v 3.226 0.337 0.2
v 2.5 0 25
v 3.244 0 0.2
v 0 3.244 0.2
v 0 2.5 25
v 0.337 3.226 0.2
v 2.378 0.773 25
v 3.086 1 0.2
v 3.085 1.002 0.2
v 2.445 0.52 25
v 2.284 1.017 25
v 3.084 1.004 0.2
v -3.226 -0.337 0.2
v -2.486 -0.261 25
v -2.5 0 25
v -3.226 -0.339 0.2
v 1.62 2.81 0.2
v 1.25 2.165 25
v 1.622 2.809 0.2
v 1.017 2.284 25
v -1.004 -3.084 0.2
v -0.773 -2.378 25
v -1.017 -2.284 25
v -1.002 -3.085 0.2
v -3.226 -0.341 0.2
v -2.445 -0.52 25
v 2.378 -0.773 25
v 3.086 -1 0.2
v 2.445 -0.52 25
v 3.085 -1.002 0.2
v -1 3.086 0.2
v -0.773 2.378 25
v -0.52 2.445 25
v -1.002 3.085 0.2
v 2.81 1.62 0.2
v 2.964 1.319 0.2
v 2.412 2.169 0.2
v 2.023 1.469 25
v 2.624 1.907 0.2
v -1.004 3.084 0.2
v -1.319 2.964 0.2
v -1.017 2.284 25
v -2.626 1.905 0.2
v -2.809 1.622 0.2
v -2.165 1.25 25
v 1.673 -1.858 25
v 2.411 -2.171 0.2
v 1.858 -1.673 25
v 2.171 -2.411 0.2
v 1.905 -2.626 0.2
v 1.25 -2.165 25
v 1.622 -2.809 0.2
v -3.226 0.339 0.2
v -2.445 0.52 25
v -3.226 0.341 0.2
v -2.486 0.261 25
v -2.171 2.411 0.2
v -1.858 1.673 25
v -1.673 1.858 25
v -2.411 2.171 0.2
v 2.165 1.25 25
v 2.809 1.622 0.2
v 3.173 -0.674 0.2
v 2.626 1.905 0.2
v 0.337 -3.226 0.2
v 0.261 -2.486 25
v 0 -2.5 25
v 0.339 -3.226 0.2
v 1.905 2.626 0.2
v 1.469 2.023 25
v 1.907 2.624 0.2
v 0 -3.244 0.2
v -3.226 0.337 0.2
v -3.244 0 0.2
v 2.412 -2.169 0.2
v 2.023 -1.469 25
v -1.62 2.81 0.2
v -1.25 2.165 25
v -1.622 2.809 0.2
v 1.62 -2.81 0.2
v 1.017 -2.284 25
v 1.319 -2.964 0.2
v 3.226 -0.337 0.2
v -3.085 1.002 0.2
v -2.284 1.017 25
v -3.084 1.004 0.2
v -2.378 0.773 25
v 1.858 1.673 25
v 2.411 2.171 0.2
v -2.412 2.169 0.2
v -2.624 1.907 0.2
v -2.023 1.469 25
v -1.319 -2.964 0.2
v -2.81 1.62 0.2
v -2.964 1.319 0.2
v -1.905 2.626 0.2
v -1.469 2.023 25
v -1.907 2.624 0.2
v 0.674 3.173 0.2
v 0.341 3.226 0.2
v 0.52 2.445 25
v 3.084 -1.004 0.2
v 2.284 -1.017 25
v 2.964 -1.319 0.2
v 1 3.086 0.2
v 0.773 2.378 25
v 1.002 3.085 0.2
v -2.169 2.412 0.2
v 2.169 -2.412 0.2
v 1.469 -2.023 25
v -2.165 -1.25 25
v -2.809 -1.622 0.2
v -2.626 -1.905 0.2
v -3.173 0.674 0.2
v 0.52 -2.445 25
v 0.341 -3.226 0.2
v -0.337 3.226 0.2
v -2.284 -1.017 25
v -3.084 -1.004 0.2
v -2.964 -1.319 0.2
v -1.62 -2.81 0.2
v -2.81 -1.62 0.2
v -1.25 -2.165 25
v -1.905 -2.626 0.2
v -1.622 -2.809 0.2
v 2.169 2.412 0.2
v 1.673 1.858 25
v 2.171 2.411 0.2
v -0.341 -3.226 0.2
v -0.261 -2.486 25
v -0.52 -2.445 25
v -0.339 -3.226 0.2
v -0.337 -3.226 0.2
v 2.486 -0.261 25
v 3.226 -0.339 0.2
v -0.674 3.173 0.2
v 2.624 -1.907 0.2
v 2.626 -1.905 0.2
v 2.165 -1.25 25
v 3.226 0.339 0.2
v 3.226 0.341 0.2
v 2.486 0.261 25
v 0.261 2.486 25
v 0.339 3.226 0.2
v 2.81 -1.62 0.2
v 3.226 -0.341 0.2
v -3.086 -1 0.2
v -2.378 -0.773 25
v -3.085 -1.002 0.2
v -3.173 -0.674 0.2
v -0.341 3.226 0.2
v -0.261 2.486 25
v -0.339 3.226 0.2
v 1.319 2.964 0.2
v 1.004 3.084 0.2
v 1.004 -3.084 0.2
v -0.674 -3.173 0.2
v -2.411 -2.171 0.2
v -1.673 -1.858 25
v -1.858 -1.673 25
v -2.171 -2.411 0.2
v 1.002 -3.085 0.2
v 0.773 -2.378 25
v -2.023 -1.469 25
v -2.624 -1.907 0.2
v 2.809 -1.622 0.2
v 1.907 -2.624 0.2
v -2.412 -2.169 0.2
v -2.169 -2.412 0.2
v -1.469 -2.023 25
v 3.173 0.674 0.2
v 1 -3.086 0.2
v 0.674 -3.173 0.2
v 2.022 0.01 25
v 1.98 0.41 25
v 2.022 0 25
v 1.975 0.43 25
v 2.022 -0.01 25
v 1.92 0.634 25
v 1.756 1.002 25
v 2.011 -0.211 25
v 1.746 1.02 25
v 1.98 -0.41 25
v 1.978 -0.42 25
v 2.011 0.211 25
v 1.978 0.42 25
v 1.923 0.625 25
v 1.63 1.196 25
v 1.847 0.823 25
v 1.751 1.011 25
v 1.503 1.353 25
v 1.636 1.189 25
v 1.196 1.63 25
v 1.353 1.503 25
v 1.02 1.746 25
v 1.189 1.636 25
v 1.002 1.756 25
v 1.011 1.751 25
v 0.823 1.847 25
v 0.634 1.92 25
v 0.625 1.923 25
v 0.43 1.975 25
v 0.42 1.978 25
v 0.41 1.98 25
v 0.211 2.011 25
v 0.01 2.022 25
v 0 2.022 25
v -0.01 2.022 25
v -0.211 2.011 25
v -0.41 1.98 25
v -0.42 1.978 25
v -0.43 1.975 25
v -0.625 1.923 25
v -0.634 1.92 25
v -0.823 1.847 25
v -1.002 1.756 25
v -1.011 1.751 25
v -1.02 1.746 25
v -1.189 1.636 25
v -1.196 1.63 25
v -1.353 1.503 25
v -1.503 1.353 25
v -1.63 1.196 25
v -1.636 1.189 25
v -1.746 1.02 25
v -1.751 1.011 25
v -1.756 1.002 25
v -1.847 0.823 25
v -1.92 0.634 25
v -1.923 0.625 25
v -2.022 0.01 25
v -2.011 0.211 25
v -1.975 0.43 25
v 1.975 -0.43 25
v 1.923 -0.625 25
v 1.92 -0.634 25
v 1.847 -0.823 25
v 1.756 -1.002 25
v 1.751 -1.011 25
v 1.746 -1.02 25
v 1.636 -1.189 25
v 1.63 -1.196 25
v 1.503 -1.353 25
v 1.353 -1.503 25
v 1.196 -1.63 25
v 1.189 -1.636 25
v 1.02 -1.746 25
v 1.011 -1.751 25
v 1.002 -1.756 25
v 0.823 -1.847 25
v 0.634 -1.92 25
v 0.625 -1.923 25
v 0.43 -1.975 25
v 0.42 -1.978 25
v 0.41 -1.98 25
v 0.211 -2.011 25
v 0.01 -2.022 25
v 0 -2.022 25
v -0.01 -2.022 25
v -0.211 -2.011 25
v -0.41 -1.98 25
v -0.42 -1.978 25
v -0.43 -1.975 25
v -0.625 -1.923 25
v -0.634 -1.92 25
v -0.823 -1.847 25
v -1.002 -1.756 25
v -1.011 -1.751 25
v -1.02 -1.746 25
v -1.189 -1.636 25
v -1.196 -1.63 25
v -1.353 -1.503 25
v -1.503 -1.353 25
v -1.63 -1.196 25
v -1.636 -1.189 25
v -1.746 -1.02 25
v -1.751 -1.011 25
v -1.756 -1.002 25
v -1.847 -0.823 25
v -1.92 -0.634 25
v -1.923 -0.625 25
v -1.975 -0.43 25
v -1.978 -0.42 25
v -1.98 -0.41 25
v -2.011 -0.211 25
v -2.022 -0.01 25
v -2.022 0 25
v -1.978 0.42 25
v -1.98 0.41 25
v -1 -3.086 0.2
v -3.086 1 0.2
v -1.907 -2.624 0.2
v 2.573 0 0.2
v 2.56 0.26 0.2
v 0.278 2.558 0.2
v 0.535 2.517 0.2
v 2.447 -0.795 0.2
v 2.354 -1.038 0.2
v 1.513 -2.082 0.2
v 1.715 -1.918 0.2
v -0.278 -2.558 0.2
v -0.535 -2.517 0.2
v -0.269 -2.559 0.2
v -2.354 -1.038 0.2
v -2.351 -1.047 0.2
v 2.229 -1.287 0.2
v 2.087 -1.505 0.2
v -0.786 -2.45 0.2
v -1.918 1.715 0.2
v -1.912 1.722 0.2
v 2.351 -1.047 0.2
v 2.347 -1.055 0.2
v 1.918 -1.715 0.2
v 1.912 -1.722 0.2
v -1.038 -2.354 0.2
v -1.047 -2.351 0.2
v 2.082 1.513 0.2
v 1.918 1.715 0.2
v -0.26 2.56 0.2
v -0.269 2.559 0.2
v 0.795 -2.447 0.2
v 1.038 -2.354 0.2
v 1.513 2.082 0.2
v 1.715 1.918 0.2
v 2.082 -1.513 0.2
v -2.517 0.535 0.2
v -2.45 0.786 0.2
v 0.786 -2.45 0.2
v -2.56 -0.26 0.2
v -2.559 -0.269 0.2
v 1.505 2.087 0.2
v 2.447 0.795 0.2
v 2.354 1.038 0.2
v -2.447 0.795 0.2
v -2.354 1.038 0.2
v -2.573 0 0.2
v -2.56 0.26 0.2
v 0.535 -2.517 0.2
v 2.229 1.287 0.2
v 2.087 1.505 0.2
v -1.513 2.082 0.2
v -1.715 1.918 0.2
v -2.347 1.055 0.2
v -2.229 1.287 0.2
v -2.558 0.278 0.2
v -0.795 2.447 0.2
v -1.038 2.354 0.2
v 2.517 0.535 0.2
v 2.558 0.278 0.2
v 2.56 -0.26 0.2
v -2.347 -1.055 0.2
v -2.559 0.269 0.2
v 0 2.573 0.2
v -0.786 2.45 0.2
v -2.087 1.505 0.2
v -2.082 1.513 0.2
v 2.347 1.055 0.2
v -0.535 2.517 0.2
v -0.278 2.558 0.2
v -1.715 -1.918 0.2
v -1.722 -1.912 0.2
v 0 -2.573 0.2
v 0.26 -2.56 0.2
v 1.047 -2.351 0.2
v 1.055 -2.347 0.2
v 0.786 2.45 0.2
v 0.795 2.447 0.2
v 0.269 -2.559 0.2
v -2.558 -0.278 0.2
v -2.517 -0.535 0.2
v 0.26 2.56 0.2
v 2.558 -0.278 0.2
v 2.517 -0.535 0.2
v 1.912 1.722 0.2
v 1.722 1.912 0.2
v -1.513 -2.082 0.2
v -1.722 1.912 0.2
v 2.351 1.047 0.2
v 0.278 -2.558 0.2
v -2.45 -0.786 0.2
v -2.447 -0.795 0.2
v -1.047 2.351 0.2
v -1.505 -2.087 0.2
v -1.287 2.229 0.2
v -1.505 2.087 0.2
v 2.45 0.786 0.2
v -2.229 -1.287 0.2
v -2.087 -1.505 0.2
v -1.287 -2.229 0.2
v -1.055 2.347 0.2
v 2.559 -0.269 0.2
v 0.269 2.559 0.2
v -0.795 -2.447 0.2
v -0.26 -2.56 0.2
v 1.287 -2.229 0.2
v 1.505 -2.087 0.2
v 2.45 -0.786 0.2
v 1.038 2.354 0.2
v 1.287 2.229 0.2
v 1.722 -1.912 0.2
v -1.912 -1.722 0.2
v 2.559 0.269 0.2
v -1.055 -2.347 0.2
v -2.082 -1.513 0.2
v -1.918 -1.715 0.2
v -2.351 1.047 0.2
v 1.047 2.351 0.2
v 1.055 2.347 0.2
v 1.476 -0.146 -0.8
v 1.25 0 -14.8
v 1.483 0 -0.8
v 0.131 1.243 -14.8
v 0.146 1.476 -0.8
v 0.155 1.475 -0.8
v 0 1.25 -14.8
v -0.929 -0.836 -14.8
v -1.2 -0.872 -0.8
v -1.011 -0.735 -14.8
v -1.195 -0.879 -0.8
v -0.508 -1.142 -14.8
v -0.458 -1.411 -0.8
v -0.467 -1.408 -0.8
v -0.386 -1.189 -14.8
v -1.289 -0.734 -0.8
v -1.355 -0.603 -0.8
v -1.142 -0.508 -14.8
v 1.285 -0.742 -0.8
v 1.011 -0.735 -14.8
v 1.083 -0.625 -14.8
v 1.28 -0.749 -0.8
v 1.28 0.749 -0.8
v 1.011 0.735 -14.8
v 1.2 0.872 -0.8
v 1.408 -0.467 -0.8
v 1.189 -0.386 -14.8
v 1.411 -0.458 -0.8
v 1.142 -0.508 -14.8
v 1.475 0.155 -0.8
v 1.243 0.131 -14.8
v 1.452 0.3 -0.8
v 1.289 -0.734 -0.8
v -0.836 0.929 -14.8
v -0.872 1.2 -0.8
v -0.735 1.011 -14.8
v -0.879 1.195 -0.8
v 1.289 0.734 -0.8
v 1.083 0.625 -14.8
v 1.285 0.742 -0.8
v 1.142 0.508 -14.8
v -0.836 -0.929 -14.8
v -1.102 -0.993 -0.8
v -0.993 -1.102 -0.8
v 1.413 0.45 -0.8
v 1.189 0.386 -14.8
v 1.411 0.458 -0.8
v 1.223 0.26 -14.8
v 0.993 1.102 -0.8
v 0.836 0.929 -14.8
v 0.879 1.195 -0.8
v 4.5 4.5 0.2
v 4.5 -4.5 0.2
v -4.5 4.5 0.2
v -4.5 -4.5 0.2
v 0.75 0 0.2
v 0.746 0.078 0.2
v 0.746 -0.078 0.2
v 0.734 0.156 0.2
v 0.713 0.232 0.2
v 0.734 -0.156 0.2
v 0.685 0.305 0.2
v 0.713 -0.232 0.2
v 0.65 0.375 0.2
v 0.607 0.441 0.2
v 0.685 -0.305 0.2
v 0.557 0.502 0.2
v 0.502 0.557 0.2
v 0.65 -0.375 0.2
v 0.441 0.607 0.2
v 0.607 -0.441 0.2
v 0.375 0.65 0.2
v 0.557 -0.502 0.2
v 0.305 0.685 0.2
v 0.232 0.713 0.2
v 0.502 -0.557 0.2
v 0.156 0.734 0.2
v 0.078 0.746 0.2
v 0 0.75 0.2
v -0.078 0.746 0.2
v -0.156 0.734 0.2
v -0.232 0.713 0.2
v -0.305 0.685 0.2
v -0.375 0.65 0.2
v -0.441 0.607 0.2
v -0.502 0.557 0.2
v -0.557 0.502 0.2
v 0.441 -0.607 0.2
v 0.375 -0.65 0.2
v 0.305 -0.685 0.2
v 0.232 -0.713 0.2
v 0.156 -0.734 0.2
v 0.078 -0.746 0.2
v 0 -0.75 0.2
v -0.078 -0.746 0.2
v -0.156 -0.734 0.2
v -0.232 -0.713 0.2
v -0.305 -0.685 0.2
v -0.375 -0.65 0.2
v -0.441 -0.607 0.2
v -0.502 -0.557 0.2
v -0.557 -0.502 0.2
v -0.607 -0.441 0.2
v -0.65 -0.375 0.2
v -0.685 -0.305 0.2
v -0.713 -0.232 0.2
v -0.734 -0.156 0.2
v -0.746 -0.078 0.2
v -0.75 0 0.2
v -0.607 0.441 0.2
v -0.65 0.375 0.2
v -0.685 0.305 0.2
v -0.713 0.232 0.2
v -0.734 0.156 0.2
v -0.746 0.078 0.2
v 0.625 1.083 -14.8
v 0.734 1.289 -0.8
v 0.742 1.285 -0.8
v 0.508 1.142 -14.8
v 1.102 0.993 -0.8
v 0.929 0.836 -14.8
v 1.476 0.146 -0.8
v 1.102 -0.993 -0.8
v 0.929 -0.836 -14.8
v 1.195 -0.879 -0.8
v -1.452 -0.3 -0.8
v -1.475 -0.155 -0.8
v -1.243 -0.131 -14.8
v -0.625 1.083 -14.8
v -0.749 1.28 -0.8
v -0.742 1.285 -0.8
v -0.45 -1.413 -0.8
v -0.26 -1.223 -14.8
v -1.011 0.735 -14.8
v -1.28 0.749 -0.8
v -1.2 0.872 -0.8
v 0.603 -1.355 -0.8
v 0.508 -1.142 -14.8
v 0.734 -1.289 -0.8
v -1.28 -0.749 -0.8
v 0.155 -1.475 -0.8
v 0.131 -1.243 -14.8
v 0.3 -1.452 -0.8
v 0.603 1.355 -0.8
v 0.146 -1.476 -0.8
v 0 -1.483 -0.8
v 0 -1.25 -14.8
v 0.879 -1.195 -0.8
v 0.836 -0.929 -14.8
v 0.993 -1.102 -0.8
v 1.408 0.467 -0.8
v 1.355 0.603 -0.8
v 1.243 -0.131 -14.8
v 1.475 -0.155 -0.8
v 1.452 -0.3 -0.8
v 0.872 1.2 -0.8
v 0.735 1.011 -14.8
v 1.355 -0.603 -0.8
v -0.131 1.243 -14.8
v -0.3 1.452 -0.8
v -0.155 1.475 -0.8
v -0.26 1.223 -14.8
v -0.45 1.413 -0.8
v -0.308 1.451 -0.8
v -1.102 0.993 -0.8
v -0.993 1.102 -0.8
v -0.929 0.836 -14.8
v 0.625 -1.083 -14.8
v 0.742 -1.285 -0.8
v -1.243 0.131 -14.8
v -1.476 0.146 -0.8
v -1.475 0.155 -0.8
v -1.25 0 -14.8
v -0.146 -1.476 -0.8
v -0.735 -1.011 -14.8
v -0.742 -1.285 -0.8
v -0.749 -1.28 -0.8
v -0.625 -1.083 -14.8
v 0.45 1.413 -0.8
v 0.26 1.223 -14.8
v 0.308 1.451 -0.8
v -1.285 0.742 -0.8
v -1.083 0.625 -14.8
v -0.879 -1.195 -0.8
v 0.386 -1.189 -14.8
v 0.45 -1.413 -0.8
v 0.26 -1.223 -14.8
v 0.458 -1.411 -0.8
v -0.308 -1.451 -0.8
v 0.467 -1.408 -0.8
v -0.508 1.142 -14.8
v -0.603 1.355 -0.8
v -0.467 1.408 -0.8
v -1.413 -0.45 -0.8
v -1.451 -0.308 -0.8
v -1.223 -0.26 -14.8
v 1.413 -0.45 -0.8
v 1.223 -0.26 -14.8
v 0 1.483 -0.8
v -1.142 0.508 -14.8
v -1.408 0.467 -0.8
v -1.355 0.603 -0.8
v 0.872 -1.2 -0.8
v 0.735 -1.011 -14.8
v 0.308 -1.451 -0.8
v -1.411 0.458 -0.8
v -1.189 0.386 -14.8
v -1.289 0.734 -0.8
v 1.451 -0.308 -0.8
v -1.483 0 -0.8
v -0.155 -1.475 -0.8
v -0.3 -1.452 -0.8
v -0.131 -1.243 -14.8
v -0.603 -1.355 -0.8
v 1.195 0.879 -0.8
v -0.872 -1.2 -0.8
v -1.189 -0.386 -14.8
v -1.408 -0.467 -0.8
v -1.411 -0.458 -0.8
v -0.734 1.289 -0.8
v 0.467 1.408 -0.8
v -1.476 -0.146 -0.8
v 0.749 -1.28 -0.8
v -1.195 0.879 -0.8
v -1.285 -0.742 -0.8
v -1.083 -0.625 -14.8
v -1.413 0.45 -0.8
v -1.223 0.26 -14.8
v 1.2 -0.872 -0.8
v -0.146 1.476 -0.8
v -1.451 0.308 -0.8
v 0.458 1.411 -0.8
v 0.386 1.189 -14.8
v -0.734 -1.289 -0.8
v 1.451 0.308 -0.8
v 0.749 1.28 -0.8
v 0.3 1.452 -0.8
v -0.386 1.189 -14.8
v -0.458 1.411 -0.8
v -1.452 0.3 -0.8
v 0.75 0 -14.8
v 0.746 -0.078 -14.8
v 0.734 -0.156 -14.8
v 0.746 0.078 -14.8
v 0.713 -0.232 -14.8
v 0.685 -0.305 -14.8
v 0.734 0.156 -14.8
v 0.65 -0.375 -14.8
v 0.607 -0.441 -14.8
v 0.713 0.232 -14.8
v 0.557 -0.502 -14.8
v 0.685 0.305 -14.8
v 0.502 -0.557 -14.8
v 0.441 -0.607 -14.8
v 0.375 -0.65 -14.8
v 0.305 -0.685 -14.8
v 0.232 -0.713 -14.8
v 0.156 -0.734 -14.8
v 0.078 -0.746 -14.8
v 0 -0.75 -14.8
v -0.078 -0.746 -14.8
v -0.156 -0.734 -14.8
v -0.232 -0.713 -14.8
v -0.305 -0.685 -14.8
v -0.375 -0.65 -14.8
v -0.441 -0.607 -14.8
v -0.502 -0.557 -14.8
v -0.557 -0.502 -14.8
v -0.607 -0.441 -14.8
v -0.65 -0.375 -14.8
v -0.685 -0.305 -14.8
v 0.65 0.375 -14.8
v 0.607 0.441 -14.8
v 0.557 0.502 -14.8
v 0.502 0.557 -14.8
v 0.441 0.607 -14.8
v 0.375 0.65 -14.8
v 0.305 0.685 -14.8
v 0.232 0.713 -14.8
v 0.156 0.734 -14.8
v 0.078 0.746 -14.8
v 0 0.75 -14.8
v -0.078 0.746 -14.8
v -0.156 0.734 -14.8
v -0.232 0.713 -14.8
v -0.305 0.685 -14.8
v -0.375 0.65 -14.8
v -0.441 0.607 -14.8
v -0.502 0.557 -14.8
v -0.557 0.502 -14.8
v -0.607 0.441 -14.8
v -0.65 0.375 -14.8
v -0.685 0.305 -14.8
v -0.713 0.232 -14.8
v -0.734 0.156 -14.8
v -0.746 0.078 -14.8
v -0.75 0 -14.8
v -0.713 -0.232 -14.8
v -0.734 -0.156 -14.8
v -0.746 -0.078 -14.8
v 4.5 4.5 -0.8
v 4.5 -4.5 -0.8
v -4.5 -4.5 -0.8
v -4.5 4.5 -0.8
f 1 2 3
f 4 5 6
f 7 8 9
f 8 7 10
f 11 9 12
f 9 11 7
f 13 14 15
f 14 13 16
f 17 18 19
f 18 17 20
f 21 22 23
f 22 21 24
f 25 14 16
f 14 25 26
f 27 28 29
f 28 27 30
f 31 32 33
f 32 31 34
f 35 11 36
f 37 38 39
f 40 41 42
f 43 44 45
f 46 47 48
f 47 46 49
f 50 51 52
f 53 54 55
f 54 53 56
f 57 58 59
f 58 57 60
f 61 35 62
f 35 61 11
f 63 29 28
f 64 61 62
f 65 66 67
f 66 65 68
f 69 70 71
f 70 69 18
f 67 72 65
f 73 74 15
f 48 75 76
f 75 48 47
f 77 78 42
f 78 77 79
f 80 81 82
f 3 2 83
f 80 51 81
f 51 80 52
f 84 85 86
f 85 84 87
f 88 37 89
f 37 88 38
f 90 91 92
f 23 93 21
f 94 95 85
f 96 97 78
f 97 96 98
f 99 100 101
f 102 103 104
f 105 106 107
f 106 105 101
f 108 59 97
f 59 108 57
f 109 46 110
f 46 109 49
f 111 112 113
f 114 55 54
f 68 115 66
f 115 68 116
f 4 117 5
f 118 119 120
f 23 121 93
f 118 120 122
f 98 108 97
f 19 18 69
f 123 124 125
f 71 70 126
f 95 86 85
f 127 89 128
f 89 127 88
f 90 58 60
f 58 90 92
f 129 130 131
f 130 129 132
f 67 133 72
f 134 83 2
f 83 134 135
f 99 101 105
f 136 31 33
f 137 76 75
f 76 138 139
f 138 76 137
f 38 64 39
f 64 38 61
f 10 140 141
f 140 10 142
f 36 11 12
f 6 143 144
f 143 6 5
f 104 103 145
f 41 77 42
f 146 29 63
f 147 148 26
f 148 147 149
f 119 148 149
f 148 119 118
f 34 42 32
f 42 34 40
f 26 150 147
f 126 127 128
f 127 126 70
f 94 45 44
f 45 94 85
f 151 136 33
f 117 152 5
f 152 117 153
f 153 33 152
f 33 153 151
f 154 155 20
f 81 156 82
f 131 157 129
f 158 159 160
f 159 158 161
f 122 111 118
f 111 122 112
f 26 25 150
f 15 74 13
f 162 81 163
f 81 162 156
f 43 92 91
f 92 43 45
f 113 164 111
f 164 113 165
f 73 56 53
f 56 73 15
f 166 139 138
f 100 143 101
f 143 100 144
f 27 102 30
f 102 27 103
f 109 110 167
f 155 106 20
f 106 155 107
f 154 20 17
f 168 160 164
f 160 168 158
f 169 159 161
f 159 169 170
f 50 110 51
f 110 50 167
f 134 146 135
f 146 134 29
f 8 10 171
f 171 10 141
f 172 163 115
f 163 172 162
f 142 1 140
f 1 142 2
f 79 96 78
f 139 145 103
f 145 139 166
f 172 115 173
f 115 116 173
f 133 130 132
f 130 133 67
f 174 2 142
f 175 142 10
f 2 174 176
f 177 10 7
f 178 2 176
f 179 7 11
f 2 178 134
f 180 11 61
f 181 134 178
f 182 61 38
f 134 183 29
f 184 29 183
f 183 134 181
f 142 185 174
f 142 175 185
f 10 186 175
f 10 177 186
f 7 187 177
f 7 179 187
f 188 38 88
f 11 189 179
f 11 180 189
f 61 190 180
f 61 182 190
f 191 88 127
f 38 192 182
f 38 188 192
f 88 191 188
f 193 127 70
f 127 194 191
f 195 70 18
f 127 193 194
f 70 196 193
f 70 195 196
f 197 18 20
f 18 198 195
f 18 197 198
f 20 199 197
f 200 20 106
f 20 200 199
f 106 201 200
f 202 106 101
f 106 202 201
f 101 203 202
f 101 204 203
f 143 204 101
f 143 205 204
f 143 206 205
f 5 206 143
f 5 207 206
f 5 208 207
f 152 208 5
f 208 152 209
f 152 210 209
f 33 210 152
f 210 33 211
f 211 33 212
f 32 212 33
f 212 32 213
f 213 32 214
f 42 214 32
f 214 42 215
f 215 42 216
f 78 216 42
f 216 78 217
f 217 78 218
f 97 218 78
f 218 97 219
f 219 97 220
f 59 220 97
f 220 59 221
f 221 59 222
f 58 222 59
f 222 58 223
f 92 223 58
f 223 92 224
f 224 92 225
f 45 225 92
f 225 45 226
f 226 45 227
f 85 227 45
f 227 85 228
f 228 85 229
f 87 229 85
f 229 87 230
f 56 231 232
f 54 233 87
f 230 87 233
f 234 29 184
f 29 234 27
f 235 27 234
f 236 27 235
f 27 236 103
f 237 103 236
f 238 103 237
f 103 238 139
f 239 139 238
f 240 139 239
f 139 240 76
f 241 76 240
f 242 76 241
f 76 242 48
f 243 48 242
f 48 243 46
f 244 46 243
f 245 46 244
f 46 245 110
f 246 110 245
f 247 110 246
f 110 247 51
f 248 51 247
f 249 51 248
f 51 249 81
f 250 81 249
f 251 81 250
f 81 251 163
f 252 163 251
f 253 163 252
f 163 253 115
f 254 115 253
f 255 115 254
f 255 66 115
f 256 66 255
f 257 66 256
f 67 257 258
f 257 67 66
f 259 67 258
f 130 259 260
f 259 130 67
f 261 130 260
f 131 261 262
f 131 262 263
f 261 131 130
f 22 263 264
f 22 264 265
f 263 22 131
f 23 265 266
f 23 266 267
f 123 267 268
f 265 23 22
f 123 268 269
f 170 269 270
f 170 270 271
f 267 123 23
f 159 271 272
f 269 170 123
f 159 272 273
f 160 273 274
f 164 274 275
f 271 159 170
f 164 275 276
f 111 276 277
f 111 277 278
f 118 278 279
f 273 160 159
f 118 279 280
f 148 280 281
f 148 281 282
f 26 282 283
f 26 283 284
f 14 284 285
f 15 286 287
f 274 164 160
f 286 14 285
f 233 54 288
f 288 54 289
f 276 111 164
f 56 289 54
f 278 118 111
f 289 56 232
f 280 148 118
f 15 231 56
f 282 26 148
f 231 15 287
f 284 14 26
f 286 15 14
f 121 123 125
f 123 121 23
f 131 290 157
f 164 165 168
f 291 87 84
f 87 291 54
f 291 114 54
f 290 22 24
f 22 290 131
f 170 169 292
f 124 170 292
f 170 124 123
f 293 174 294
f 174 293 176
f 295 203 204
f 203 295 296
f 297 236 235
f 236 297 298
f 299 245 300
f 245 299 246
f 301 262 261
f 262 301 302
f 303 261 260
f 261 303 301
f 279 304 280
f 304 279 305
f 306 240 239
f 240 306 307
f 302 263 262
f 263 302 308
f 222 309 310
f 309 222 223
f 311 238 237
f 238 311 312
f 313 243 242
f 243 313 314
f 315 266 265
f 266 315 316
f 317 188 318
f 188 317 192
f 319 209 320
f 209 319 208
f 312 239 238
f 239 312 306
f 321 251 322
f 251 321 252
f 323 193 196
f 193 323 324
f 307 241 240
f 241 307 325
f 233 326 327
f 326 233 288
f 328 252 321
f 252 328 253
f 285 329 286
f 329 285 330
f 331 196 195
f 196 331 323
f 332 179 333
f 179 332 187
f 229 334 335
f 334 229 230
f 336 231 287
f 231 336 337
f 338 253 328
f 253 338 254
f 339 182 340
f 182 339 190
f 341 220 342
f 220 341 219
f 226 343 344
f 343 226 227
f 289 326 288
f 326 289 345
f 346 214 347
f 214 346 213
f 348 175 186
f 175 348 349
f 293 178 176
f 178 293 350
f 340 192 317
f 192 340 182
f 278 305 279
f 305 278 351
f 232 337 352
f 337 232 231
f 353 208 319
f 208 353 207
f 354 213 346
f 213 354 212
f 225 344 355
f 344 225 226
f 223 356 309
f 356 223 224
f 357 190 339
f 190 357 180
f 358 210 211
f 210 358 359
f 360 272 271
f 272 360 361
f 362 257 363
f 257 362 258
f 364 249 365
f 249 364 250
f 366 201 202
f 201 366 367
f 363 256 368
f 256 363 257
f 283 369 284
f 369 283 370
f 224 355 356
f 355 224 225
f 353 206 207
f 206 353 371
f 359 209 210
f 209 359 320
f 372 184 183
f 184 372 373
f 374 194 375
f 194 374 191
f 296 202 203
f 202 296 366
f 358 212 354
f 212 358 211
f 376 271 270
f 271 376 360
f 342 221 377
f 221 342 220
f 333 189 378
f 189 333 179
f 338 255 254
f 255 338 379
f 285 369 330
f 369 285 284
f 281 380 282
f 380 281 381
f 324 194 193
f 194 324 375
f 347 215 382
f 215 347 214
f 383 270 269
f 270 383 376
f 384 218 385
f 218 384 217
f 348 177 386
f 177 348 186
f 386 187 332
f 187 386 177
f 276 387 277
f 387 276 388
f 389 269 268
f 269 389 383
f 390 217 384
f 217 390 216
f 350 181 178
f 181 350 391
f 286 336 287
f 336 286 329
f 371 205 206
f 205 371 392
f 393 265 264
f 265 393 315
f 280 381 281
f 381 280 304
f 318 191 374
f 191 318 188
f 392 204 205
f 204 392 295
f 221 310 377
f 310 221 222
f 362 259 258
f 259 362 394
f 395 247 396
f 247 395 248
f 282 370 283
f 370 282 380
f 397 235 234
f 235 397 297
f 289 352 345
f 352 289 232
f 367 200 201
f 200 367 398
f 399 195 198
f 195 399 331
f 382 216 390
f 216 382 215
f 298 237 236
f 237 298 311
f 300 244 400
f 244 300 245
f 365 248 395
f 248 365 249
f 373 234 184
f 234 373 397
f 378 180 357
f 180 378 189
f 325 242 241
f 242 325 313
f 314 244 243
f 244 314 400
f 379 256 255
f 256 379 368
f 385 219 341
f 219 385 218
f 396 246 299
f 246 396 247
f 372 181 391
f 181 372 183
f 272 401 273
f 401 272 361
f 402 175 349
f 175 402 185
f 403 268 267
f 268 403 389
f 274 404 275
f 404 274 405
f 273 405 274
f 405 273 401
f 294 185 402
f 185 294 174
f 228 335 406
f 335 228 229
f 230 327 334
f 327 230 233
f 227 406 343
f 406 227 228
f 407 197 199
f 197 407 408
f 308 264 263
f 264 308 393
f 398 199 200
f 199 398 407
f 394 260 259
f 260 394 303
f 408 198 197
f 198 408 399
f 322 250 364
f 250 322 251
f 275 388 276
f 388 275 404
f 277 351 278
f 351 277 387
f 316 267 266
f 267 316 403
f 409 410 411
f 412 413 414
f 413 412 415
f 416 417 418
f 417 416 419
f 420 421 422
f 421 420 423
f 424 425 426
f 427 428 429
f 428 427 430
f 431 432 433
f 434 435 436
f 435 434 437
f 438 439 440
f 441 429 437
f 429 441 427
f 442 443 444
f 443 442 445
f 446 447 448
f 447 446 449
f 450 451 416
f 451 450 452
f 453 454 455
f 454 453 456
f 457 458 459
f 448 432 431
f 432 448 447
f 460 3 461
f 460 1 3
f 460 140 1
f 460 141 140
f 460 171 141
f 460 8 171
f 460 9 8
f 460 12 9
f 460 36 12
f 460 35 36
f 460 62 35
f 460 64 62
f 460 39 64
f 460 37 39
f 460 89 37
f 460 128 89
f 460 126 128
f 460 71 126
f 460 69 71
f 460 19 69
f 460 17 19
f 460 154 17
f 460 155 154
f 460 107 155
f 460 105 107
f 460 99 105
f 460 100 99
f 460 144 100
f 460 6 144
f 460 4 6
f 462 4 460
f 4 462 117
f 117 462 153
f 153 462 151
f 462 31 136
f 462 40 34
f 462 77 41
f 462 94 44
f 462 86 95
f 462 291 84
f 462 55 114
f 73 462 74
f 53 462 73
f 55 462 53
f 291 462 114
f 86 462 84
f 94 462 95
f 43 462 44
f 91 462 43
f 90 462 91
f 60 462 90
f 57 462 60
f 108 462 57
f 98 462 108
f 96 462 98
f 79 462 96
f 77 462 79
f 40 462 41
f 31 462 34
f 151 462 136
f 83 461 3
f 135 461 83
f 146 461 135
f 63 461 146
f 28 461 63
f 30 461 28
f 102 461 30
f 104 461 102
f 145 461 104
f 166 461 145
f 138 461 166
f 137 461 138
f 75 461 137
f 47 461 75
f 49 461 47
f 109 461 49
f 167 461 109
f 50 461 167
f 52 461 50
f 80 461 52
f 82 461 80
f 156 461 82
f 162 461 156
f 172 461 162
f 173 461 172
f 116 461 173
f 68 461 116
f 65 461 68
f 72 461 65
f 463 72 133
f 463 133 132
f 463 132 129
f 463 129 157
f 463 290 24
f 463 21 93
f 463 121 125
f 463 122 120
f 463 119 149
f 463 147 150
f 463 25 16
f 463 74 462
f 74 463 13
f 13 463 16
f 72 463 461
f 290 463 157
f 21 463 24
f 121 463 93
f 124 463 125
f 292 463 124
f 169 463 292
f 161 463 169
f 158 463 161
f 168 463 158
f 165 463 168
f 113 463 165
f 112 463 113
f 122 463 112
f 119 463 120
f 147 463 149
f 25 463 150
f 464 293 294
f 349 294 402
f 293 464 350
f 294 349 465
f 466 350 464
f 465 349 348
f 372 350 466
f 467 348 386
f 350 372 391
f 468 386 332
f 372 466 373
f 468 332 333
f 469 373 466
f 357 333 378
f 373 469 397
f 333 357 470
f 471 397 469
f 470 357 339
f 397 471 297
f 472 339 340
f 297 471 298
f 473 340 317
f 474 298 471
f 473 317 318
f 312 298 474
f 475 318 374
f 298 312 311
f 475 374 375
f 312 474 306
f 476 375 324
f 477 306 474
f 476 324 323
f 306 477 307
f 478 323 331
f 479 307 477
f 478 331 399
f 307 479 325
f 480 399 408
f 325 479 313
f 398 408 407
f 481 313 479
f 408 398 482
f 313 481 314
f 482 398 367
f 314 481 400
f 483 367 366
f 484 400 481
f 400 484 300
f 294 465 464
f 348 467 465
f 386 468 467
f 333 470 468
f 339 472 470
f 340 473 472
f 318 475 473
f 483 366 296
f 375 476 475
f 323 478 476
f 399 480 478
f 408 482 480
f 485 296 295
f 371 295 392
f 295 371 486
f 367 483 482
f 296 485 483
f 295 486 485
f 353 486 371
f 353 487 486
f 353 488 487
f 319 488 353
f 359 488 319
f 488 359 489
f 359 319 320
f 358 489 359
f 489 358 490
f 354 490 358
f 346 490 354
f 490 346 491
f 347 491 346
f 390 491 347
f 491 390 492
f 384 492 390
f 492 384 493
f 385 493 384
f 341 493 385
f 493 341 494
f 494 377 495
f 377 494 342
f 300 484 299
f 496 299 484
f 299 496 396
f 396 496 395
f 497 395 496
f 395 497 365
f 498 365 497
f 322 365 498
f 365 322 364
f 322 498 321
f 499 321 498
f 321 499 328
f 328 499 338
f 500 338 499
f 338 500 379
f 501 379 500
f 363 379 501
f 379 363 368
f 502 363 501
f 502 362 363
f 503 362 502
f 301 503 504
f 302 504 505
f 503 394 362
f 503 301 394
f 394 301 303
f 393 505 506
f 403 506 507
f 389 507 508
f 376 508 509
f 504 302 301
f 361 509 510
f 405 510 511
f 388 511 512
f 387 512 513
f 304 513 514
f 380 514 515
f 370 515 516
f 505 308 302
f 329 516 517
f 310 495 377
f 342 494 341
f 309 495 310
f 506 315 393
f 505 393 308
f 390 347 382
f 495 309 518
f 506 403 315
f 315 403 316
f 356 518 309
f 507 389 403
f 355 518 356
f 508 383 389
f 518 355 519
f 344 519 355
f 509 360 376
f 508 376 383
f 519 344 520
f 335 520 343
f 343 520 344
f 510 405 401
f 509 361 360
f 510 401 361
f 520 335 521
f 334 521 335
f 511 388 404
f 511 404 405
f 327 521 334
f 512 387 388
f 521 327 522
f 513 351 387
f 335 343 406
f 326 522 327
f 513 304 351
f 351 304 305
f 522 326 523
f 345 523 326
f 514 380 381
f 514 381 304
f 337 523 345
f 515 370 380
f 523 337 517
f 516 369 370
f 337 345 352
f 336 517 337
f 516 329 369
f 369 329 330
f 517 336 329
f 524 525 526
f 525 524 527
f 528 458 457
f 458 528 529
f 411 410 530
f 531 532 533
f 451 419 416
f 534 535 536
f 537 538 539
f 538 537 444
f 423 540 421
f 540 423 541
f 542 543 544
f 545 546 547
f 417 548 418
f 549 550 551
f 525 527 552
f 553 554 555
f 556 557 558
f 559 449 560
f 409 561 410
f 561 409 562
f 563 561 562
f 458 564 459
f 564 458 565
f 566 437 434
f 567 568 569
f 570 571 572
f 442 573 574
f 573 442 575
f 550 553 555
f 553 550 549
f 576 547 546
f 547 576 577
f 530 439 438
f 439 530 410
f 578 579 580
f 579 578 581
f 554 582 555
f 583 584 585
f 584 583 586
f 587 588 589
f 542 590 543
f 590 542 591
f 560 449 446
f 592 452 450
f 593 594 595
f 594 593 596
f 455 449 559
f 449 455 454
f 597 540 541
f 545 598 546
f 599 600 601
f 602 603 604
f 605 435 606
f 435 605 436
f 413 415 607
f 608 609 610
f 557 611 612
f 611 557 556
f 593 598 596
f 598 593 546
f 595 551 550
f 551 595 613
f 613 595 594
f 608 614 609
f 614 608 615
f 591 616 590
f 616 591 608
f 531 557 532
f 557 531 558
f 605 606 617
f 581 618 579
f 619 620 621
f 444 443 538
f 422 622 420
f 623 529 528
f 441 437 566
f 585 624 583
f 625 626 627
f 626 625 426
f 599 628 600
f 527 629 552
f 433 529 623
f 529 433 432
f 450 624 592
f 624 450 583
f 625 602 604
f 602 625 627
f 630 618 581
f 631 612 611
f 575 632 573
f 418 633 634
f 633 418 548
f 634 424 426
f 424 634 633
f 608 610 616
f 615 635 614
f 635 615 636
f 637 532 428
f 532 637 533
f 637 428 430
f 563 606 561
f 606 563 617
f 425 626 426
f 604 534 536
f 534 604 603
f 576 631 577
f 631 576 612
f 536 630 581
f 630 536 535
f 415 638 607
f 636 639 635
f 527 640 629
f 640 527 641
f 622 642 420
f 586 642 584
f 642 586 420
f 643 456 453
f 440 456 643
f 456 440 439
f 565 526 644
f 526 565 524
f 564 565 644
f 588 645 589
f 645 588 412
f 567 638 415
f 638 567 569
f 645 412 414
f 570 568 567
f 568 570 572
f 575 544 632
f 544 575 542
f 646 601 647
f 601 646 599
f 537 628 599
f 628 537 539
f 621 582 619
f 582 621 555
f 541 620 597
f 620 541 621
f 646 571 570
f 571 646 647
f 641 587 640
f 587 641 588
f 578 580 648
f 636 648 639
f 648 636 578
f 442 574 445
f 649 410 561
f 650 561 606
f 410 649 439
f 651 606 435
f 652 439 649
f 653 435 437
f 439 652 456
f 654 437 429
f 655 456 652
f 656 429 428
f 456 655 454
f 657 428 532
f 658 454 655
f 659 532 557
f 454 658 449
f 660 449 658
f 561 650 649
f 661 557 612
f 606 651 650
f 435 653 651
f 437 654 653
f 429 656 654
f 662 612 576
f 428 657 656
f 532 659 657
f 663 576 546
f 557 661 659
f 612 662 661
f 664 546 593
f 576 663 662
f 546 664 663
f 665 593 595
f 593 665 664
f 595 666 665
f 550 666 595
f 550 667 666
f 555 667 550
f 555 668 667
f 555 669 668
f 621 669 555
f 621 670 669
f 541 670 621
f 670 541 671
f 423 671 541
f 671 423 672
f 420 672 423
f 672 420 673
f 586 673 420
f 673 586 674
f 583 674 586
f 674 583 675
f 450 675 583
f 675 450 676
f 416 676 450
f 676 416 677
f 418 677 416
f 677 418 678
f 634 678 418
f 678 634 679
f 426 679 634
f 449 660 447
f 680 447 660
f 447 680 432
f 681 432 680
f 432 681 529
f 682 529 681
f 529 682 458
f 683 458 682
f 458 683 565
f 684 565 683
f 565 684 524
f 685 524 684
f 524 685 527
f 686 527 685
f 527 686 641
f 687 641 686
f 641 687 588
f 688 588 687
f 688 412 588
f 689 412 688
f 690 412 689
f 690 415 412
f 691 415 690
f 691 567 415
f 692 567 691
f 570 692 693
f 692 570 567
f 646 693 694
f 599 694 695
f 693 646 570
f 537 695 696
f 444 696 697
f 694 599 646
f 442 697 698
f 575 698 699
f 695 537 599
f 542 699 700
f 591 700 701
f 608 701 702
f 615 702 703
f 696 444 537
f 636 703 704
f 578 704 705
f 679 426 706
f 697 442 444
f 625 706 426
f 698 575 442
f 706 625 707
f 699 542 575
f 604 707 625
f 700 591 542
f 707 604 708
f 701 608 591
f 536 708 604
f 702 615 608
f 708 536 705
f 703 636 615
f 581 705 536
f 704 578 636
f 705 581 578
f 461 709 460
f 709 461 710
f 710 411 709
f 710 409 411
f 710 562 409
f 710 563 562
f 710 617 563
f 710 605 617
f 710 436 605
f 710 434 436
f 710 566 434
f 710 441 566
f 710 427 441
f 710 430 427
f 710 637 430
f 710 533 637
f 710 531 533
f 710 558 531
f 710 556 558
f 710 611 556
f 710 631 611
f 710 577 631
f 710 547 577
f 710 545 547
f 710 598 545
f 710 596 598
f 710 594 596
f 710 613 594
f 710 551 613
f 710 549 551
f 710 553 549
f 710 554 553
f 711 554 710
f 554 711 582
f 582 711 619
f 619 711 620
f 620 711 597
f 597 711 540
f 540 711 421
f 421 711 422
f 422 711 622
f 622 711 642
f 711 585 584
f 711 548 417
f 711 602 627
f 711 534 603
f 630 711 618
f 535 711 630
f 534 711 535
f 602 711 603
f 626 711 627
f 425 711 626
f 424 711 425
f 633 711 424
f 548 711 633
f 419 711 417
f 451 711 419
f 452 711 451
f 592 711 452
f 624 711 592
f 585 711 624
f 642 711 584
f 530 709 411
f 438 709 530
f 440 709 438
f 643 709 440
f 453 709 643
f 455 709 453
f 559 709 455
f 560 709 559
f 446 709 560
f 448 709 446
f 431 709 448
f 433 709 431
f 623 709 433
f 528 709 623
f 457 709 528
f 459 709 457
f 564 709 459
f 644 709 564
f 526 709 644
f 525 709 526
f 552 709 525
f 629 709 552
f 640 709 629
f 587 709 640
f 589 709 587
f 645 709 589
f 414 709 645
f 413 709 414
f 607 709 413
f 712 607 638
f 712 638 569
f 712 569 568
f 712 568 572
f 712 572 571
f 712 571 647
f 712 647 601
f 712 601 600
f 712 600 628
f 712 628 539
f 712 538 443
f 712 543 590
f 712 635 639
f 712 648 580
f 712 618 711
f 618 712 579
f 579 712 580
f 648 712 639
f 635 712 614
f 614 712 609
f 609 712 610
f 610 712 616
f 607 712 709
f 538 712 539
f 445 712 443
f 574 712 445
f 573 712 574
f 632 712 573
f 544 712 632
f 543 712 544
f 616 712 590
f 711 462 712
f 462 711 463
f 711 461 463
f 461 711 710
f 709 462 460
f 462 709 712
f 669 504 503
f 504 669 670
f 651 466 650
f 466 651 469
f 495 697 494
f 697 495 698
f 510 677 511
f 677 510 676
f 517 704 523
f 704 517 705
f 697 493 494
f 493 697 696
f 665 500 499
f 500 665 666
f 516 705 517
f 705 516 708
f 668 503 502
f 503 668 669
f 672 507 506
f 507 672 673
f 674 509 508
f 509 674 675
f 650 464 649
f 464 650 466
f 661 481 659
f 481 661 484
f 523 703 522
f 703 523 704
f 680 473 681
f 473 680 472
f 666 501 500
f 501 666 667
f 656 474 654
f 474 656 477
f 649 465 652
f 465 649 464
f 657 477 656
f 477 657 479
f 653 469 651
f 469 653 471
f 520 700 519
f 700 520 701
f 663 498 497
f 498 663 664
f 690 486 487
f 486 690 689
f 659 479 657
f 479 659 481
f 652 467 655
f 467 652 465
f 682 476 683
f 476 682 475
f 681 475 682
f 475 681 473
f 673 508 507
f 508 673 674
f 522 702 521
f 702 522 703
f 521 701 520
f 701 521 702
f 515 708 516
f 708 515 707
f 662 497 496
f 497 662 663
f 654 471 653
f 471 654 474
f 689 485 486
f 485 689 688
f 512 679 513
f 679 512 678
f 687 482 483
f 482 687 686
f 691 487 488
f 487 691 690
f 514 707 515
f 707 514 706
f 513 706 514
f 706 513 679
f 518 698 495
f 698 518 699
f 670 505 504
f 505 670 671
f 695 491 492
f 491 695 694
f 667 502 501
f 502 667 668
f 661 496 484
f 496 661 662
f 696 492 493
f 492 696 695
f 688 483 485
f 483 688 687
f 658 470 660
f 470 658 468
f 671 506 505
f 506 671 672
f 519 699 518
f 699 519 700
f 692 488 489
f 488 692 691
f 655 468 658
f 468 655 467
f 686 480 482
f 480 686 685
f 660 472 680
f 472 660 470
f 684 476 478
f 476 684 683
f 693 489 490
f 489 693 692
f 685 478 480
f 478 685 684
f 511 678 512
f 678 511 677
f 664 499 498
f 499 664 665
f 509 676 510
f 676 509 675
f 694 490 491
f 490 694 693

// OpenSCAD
tube1InnerDia = 6;
tube1OutDia = 9;
tube1FitLen = 25;

tube2InnerDia = 1.5;
tube2OutDia = 3;
tube2FitLen = 15;

tol = 0.1;

$fn=60;

difference(){
cylinder(d2= tube1InnerDia-1,d1 =tube1InnerDia+0.5,h=tube1FitLen);

translate([0,0,-1]){
cylinder(d2 = tube1InnerDia-2,d1 =(tube1InnerDia-1)+2*tol,h=tube1FitLen+2);
}//end translate
}//end difference




translate([0,0,0.2]){
rotate([180,0,0]){

difference(){
    union(){
cylinder(d1= tube2OutDia,d2=tube2OutDia-0.5,h=tube2FitLen);
translate([-tube1OutDia/2,-tube1OutDia/2,]){
    cube([tube1OutDia,tube1OutDia,1]);
}//end translate
}//end union
translate([0,0,-0.25]){
cylinder(d2 = tube2InnerDia,d1 =tube2InnerDia,h=tube2FitLen+0.5);
}//end translate
}//end difference
}//end rotate
}
